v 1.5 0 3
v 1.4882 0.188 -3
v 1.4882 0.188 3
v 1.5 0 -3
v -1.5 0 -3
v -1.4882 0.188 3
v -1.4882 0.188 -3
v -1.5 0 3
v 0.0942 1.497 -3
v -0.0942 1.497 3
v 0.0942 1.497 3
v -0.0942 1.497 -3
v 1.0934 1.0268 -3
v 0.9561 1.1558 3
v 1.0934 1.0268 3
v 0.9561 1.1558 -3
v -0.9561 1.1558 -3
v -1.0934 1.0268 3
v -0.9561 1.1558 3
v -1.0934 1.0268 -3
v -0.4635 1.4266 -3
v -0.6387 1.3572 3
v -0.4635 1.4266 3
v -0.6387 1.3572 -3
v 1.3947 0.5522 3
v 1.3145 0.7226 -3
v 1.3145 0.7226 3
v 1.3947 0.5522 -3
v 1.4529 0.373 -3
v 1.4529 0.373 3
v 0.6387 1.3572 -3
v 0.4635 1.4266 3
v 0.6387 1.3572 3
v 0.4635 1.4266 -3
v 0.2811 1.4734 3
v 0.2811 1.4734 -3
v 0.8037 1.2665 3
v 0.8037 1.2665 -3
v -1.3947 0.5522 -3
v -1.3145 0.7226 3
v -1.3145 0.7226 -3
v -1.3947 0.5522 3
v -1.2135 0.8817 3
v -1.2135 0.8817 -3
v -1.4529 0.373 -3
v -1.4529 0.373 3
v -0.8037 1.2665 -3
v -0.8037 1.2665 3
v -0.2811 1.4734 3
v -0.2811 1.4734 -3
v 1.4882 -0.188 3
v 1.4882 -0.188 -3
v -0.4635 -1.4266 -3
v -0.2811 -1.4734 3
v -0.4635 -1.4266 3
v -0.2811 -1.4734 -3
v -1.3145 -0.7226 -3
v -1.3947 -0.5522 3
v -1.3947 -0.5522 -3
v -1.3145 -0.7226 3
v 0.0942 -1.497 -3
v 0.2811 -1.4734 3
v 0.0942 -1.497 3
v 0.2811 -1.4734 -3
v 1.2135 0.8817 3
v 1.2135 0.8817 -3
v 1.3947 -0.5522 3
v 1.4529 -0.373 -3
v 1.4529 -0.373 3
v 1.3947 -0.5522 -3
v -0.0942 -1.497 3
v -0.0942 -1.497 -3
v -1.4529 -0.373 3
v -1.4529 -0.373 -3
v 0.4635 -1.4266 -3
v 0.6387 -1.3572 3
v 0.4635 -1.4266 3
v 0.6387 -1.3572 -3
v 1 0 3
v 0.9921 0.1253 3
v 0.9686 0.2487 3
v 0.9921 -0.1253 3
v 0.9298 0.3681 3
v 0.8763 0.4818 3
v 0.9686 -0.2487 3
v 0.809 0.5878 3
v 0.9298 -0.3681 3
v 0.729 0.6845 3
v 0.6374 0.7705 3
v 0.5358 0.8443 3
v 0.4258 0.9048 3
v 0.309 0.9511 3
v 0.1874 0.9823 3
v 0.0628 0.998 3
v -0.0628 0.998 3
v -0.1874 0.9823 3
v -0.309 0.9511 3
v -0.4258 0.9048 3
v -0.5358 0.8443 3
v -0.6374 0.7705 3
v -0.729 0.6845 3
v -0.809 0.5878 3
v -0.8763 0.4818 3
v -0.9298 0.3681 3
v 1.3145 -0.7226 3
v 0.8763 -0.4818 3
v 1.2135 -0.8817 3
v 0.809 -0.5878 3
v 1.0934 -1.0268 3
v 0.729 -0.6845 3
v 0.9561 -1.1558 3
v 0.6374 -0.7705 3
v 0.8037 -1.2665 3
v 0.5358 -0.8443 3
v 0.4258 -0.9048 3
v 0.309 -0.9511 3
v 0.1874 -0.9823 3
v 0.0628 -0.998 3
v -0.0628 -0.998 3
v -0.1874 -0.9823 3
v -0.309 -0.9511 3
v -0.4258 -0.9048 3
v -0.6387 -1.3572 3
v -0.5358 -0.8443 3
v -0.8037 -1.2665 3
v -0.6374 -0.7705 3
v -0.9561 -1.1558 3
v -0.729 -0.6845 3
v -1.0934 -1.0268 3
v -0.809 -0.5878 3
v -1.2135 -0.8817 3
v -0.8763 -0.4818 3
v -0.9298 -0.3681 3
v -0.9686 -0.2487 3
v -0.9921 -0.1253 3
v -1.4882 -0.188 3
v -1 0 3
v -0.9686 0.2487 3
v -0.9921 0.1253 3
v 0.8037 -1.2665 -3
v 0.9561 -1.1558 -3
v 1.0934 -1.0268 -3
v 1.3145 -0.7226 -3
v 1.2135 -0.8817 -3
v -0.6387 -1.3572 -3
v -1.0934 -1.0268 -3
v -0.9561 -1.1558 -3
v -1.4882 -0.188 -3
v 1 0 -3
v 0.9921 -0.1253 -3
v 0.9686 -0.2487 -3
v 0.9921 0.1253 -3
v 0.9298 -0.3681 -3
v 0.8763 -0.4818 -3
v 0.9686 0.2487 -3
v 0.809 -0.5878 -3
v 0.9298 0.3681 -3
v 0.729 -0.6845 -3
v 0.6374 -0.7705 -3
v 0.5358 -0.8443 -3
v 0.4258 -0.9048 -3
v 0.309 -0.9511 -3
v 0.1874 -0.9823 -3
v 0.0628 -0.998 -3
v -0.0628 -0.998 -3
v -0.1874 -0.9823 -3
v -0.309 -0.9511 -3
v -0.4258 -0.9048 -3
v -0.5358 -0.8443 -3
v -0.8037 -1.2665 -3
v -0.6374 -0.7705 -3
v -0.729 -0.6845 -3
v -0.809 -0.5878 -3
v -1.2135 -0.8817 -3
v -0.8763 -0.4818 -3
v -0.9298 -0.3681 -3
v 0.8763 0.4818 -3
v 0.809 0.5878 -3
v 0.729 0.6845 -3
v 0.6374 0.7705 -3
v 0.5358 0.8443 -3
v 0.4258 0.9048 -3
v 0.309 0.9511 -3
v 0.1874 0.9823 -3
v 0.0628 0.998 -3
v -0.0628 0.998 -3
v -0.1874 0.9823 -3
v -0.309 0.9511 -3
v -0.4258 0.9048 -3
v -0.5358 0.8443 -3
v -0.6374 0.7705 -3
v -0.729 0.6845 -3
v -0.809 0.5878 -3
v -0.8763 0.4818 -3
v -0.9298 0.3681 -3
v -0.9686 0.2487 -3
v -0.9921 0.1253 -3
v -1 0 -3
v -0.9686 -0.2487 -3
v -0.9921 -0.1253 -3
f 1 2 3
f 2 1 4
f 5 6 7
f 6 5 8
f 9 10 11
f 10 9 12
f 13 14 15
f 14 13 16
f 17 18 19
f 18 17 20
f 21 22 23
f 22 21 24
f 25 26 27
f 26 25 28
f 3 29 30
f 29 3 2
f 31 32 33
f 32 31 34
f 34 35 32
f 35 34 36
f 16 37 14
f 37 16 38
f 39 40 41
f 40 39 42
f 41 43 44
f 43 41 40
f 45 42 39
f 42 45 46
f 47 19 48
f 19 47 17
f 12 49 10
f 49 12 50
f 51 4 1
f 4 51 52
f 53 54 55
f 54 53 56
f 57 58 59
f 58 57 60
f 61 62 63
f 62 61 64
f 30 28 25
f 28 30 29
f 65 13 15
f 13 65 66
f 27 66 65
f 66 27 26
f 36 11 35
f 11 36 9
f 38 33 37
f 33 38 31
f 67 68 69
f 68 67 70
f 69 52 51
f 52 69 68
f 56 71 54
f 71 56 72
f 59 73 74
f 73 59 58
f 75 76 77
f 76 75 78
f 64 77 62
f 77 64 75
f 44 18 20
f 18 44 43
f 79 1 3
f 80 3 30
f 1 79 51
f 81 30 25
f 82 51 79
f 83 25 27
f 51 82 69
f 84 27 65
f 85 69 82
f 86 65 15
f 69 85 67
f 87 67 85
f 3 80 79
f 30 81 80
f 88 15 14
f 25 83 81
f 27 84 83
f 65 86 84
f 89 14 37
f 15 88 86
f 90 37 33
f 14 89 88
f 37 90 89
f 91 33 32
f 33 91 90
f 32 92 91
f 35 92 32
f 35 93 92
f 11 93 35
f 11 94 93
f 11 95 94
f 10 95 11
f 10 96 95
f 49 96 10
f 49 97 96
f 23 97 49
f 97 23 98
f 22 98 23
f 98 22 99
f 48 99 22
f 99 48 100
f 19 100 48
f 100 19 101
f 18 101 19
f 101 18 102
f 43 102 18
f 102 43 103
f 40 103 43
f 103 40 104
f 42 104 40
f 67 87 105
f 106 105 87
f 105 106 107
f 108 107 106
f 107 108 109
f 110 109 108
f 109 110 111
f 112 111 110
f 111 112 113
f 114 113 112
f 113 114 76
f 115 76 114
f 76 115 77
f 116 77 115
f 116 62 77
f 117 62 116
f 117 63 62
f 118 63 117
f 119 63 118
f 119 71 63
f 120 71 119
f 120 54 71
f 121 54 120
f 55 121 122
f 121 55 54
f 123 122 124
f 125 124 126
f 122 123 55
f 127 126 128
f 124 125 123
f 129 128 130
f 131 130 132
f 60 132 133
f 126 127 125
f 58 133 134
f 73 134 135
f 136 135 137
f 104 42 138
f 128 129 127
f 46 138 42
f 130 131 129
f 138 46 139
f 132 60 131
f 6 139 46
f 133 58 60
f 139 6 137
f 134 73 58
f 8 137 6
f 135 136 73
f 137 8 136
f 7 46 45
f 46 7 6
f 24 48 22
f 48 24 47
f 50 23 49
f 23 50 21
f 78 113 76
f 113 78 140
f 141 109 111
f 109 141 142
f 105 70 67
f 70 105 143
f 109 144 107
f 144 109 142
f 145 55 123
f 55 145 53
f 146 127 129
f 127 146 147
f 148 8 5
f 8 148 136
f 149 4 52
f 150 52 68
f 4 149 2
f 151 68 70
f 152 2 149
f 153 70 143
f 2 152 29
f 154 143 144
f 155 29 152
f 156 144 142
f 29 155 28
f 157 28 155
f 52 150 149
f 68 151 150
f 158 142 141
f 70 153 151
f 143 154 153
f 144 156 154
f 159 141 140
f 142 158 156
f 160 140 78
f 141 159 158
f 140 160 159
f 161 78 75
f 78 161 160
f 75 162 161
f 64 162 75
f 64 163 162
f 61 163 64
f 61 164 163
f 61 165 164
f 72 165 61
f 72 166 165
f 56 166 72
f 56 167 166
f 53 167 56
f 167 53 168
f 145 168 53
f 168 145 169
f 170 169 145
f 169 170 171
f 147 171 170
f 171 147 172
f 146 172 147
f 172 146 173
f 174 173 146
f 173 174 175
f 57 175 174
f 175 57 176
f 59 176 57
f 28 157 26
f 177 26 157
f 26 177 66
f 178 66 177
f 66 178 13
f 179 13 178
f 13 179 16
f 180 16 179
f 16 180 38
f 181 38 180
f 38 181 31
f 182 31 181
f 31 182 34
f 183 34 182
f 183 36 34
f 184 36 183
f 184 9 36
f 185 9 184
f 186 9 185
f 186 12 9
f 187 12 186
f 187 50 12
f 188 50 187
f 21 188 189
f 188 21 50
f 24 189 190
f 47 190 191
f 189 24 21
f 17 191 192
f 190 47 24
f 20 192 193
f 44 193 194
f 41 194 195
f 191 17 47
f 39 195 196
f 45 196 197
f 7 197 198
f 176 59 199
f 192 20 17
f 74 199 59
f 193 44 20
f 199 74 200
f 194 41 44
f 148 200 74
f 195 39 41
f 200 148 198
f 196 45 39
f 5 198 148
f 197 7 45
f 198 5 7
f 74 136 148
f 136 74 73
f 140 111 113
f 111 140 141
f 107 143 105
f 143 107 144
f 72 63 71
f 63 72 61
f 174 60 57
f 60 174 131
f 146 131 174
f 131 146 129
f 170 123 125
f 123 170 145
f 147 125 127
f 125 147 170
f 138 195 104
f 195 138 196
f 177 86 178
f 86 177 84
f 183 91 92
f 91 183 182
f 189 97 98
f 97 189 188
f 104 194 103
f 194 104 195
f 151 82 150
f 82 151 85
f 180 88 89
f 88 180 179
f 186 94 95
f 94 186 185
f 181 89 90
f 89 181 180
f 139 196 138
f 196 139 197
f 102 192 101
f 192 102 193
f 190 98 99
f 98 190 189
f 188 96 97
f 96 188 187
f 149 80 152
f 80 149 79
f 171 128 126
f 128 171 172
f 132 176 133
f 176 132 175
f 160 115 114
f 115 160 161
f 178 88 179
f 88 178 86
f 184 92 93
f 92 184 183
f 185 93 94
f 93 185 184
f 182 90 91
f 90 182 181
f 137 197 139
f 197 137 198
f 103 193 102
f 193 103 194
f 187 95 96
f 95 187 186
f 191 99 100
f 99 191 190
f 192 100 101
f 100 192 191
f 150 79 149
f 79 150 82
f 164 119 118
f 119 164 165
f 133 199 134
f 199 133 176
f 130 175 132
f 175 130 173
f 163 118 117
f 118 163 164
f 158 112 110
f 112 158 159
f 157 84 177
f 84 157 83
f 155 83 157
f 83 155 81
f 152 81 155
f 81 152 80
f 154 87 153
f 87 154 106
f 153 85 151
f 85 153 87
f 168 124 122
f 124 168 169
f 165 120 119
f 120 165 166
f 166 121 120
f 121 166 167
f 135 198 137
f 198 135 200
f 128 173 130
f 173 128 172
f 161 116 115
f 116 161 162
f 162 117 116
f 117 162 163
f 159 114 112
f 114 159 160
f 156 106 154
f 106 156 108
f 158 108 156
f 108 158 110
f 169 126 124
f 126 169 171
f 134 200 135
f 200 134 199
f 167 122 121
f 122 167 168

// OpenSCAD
$fn = 50;


difference() {
	union() {
		translate(v = [0, 0, -3.0000000000]) {
			cylinder(h = 6, r = 1.5000000000);
		}
	}
	union() {
		translate(v = [0, 0, -100.0000000000]) {
			cylinder(h = 200, r = 1.0000000000);
		}
	}
}
